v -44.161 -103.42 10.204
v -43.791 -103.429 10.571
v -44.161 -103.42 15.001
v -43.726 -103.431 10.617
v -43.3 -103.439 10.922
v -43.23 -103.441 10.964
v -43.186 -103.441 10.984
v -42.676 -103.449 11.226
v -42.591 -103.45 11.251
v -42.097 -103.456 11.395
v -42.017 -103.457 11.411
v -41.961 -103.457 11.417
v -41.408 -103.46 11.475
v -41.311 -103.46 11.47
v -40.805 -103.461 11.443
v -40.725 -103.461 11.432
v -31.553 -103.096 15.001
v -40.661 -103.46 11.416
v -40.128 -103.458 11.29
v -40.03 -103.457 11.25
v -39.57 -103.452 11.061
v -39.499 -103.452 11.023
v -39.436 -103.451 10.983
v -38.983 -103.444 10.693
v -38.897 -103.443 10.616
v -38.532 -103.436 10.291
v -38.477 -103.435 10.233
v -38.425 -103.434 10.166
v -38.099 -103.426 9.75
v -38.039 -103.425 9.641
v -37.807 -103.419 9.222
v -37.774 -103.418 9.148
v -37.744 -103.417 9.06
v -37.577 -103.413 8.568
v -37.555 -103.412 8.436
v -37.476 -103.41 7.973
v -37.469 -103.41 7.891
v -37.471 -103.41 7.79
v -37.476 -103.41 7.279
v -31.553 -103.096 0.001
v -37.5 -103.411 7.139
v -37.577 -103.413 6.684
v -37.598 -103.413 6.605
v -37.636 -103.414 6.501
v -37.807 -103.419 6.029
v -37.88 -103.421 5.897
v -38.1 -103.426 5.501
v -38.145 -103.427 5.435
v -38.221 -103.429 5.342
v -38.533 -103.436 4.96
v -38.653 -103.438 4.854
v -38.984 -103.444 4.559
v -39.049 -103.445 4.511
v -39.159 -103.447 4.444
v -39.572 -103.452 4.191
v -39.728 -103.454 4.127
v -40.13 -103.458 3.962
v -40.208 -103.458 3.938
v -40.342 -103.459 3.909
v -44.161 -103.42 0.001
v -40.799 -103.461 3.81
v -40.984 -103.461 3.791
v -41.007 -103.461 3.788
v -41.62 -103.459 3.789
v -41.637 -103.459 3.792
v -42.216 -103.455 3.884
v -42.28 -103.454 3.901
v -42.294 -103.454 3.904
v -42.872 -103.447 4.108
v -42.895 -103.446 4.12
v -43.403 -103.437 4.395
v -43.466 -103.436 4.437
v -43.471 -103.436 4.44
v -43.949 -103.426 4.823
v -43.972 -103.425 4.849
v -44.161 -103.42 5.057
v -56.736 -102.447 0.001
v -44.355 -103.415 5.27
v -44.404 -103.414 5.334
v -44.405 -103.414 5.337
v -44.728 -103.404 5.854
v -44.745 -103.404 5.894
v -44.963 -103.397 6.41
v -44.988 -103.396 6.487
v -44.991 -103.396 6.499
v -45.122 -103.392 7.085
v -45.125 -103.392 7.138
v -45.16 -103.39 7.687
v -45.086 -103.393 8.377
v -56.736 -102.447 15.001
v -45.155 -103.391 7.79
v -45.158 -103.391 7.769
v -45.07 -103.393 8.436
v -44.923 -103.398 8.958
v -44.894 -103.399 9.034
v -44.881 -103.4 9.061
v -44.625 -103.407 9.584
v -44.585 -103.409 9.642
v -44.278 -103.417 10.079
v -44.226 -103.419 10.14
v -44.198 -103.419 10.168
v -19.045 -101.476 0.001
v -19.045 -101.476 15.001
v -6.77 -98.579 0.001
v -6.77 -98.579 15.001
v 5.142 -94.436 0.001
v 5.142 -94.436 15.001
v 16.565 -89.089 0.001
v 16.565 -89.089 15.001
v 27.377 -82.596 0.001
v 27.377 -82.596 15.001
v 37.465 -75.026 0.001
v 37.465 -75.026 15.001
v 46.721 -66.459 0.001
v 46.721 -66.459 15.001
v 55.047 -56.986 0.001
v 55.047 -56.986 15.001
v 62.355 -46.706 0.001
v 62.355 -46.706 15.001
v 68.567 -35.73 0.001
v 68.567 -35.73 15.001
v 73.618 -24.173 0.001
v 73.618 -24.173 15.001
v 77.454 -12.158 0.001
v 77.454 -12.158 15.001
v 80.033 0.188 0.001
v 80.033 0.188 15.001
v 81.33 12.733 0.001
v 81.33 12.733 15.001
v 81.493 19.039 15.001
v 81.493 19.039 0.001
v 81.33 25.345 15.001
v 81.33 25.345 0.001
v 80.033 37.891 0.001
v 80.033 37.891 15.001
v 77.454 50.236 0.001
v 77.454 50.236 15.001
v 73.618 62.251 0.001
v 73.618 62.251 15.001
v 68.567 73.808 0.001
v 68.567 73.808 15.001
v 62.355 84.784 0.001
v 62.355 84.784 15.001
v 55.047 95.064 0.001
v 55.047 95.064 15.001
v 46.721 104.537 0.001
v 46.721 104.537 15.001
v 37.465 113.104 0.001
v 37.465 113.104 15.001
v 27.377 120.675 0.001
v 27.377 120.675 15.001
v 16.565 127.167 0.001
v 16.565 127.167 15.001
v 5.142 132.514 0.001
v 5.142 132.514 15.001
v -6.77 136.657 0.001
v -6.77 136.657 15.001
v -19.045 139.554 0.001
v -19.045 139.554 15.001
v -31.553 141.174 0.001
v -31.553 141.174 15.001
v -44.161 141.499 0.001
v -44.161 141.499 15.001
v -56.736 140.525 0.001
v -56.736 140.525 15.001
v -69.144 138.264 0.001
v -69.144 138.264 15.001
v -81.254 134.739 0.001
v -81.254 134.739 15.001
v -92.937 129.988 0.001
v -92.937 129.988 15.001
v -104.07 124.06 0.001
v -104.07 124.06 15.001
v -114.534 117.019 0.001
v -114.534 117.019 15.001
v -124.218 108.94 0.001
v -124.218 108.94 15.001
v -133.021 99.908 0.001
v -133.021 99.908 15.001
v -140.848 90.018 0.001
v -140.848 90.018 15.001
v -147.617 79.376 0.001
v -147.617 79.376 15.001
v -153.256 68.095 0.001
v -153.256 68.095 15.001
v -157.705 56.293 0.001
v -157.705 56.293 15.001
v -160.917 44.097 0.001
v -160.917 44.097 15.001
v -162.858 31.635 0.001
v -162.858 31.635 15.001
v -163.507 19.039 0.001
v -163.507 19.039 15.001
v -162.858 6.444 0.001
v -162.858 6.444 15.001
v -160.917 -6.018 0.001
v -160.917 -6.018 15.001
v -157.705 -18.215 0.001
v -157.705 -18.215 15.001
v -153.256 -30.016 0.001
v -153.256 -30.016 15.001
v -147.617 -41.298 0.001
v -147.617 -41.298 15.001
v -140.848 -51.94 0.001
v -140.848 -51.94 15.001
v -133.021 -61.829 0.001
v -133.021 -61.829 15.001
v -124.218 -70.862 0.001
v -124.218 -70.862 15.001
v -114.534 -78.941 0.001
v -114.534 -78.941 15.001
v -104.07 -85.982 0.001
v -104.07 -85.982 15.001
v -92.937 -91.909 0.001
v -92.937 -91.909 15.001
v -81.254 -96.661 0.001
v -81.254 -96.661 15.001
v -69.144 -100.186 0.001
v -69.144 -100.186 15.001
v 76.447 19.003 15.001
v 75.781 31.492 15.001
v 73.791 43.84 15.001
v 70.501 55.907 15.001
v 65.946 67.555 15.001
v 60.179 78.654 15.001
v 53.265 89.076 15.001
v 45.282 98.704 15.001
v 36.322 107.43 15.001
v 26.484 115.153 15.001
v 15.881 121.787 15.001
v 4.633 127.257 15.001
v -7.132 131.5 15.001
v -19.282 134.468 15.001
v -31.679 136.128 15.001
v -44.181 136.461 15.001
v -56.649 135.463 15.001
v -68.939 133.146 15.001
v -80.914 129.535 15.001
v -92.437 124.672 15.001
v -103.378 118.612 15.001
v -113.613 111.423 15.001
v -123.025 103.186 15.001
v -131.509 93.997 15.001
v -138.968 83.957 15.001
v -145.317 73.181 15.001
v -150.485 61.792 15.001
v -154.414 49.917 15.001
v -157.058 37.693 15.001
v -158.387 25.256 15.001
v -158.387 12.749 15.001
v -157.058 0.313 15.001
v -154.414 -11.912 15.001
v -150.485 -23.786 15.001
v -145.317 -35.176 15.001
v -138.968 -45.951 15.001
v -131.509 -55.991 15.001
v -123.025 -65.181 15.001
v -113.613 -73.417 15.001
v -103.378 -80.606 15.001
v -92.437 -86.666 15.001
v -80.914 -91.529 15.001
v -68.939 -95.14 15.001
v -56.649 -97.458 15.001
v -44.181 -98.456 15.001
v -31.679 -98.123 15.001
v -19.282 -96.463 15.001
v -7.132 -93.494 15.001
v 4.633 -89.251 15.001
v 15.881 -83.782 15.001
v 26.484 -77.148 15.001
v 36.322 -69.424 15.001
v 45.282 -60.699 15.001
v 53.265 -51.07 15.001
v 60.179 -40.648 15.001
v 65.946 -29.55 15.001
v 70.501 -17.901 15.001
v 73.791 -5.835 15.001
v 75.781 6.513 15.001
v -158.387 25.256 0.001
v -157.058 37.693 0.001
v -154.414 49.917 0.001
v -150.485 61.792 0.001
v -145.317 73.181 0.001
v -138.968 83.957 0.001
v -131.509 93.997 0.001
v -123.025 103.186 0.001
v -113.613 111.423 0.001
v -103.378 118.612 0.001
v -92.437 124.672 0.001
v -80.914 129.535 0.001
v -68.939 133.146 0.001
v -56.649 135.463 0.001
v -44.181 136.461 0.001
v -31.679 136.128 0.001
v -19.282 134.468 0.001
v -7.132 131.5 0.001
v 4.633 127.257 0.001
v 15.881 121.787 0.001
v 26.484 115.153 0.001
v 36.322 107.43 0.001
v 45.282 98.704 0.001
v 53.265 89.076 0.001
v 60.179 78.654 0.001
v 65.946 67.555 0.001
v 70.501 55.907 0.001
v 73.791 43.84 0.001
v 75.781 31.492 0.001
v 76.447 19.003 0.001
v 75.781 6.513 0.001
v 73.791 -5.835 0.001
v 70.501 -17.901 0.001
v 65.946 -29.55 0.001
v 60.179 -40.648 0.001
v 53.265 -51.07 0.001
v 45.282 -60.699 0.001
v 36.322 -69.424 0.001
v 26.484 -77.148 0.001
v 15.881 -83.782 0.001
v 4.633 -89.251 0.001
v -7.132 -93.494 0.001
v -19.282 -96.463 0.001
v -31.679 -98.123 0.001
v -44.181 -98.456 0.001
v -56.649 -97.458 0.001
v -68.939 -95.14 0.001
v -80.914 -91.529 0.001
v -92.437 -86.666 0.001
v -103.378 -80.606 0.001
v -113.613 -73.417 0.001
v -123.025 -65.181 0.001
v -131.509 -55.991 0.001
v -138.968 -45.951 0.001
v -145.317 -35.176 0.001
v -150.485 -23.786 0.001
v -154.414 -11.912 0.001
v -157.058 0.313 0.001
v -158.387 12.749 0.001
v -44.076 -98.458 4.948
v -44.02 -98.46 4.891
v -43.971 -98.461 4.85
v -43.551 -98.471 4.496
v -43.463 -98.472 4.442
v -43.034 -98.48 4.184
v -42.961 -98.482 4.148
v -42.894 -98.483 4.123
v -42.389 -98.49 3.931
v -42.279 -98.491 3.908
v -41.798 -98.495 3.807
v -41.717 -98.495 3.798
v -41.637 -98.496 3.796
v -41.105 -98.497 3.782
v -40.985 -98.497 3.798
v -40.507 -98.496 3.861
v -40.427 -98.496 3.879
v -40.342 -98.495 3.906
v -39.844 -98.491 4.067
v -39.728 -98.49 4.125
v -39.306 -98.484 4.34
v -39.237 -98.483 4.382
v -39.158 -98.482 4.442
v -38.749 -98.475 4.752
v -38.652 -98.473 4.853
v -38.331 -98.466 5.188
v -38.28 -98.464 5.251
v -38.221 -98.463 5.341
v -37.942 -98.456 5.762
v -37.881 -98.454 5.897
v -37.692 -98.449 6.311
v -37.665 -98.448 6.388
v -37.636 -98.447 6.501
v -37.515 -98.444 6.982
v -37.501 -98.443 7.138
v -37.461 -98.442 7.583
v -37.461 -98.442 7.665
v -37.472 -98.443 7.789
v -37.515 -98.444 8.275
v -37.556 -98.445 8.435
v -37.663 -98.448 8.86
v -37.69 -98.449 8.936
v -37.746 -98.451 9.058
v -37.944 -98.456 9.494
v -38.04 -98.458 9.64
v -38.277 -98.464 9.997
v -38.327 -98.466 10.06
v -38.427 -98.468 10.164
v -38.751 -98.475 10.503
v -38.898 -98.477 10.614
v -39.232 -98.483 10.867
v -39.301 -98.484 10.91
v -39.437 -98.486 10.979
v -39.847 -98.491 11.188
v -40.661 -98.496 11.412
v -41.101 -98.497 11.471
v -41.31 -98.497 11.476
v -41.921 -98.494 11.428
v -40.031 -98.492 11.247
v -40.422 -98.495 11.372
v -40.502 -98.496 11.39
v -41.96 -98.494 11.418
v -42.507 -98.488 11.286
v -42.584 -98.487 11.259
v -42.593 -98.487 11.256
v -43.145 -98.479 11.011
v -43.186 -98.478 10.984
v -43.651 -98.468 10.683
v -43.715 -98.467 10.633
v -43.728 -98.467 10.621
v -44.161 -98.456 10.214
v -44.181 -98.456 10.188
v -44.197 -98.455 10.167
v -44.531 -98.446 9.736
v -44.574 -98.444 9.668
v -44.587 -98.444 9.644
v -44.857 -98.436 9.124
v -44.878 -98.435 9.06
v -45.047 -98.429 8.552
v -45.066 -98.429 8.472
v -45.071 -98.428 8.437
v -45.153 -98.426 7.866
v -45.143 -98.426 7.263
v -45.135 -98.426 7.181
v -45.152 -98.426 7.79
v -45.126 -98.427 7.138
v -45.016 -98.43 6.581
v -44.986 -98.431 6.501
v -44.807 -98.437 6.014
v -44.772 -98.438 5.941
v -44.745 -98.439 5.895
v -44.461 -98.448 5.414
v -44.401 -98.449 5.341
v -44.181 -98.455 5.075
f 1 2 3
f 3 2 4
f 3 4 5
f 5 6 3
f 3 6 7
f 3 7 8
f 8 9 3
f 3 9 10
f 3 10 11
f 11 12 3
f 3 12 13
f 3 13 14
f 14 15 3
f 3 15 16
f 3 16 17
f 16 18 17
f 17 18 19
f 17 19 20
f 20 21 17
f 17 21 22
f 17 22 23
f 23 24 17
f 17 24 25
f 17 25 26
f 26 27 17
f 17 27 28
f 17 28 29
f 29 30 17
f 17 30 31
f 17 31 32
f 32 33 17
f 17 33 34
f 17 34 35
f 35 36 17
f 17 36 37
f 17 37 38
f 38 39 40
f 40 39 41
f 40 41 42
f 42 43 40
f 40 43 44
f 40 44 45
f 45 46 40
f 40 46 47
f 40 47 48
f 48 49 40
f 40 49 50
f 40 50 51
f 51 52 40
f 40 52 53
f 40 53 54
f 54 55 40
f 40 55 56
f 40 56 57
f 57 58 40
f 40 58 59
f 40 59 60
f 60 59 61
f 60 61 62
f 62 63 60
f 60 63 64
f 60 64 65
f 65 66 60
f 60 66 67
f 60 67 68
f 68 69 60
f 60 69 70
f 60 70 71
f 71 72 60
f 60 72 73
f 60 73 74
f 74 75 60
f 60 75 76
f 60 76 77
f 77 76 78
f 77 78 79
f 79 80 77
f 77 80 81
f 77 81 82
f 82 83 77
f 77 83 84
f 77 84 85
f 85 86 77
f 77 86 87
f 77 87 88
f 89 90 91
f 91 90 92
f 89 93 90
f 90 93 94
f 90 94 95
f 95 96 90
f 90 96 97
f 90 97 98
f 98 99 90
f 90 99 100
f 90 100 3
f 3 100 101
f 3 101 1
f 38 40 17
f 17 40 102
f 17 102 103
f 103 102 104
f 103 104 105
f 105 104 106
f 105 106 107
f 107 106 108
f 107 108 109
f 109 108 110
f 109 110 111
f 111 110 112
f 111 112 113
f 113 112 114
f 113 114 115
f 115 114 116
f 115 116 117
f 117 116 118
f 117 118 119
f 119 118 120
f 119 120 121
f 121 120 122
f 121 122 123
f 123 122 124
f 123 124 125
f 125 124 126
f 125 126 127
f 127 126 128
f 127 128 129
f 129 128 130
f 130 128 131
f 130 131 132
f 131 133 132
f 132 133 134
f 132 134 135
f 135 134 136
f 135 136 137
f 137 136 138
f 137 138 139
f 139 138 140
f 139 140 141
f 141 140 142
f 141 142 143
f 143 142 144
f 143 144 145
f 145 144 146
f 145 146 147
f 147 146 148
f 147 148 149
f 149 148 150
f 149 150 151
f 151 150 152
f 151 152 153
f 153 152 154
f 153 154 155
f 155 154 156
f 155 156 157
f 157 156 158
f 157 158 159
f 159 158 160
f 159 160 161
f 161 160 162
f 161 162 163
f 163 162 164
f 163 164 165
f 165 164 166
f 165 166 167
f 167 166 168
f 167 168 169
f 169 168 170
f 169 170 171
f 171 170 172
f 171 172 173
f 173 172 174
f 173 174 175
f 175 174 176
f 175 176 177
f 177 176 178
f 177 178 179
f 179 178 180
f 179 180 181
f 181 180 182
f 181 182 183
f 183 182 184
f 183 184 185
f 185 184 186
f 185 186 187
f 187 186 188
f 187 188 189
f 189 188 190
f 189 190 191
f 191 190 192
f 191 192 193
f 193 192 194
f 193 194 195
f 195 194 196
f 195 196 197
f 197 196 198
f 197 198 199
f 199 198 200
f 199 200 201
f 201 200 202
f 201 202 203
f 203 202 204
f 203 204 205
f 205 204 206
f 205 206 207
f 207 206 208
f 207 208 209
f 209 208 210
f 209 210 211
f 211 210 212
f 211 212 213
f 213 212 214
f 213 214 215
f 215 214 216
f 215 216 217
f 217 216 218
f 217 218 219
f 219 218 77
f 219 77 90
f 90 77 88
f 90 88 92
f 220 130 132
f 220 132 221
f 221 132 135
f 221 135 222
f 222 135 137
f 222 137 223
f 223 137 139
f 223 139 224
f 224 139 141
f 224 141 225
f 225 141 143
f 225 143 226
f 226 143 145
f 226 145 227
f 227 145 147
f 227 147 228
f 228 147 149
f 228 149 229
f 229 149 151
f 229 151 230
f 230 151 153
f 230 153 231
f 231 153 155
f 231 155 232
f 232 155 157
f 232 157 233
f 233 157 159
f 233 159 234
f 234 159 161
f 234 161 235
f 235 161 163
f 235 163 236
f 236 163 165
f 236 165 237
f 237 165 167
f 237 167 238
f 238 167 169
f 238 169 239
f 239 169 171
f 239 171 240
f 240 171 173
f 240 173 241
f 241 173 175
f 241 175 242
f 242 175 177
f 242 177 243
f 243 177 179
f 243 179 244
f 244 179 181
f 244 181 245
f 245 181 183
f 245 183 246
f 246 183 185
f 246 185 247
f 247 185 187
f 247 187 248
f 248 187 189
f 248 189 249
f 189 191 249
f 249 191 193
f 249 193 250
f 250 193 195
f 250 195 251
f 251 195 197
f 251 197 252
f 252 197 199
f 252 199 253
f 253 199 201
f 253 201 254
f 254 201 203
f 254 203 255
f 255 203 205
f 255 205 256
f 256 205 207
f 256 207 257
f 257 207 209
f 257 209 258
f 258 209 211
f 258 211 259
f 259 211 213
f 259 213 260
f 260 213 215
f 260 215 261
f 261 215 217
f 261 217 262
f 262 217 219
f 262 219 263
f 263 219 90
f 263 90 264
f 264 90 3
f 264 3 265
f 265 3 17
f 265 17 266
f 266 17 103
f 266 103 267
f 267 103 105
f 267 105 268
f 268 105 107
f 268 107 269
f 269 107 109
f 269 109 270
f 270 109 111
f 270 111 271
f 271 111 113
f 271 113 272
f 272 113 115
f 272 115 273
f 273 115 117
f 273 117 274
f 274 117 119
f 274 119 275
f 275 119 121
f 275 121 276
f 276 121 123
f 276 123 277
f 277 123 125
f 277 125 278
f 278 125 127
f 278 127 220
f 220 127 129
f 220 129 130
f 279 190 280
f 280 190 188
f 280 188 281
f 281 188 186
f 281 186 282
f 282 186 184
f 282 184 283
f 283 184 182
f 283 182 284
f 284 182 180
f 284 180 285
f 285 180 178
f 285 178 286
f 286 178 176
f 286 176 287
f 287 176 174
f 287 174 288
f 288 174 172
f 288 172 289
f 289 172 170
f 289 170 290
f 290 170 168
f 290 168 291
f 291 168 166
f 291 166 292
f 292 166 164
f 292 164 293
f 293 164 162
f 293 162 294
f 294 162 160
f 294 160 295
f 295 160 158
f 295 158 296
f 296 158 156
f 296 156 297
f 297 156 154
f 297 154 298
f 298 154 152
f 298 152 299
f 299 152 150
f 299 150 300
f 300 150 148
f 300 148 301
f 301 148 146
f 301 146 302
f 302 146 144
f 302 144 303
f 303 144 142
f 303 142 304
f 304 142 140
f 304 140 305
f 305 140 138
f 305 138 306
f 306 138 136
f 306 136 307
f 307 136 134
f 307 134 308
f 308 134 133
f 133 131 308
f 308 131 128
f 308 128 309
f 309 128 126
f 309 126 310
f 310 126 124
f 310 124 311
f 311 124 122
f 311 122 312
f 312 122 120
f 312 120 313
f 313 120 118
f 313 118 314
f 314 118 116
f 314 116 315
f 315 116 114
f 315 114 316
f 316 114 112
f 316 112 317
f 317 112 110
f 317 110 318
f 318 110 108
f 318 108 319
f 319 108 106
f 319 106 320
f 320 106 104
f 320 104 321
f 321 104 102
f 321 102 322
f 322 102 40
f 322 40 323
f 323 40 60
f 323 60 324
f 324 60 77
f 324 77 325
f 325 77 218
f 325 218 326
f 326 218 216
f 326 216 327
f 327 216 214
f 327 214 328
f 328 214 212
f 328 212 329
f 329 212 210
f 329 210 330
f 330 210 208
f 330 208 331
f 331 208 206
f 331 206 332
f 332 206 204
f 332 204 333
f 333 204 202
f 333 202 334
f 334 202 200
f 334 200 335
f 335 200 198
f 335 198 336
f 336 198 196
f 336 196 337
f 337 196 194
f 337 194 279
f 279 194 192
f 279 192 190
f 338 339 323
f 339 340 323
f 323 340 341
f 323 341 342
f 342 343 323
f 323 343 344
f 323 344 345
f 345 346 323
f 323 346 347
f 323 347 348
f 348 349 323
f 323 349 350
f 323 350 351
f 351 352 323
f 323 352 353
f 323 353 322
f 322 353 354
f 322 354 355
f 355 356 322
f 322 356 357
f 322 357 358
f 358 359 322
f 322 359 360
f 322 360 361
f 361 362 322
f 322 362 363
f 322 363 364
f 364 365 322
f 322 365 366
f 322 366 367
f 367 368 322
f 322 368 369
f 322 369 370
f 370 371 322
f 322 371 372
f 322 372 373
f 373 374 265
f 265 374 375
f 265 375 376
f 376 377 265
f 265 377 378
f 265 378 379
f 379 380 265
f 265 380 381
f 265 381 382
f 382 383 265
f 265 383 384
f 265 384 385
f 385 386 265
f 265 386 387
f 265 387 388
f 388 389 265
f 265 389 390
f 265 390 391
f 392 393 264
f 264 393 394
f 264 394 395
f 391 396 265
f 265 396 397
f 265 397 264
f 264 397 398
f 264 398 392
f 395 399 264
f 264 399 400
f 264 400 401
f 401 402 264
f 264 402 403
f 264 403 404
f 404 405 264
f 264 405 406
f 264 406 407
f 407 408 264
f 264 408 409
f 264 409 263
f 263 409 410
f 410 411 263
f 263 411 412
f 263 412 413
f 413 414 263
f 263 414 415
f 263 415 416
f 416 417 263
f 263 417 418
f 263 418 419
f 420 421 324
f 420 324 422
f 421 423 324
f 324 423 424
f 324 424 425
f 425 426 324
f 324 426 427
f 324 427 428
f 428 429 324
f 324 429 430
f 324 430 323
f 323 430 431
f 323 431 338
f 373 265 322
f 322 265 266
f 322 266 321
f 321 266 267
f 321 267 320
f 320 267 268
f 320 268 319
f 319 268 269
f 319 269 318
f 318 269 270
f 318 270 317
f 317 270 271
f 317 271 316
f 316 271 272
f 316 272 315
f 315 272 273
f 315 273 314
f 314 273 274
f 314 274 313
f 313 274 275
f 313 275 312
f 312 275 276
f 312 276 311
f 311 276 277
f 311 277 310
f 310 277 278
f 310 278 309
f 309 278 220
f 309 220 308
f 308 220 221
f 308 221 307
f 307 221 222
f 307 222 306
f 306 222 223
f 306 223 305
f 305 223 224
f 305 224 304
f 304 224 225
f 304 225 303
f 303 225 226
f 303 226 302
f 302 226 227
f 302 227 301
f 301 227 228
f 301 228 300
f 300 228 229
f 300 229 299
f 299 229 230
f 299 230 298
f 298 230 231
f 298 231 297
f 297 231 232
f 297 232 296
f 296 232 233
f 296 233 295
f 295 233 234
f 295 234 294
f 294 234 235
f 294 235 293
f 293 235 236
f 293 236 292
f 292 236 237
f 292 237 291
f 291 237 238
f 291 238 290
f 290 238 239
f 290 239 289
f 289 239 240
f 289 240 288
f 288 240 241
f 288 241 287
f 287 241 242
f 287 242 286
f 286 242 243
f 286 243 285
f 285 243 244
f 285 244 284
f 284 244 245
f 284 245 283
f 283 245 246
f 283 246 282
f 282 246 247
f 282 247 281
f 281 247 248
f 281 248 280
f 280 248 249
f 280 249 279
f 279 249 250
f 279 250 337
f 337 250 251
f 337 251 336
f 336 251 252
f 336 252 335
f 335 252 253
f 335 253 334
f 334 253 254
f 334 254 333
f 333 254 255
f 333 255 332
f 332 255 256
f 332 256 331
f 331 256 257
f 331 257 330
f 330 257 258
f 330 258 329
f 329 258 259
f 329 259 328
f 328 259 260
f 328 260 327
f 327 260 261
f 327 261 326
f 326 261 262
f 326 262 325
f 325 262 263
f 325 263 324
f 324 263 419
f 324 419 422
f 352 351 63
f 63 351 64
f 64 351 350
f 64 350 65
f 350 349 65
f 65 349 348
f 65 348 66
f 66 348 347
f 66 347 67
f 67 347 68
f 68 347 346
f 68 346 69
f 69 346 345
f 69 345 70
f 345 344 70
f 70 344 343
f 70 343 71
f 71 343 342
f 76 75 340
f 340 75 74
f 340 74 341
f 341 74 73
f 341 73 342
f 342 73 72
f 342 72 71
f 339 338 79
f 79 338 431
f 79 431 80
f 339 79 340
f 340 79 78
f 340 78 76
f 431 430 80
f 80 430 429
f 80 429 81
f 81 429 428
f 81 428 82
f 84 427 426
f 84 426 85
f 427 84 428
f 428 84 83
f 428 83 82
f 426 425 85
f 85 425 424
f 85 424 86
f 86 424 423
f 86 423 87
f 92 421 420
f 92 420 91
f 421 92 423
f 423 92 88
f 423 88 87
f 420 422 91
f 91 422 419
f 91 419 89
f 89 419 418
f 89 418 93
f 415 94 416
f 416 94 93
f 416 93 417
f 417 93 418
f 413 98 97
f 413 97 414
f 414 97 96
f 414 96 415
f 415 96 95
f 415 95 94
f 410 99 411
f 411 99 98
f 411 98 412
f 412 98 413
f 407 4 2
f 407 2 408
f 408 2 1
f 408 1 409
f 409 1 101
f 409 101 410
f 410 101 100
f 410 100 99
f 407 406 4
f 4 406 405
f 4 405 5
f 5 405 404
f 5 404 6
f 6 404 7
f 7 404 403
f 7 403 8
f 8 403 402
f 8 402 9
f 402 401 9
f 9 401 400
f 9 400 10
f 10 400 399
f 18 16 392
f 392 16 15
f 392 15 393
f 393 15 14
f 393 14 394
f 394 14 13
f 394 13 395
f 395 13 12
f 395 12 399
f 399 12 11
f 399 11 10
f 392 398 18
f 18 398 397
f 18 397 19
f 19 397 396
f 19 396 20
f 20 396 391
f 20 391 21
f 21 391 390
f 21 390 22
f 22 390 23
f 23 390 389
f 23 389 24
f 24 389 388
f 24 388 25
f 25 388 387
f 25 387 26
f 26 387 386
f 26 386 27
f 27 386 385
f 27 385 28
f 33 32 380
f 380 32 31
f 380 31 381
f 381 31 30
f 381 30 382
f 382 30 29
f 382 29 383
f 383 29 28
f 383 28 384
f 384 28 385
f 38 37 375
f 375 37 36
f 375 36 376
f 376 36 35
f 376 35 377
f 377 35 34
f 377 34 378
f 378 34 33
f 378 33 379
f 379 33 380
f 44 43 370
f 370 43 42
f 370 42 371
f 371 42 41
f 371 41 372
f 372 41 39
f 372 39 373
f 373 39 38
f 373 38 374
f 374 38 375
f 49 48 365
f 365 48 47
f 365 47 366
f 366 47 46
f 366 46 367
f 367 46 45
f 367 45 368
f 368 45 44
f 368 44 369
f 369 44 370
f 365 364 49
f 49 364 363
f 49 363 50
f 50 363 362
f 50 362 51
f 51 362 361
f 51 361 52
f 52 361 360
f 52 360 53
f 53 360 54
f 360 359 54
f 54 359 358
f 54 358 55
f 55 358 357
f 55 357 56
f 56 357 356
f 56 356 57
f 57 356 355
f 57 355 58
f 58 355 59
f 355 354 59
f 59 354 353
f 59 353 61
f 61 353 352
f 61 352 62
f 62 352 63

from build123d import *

# Parameters (mm, degrees)
ESQUISSE1_R             = 122.5
BOSS_EXTRU_1_DEPTH      = 15
ESQUISSE3D1_R           = 117.5
ENL_V_MAT_EXTRU_1_DEPTH = 21
ESQUISSE2_R             = 3.85
ENL_V_MAT_EXTRU_2_DEPTH = 217.77873659


with BuildPart() as part:
    # Esquisse1 → Boss.-Extru.1 (new body)
    with BuildSketch(Plane.XY):
        with Locations((-41.00744319, 19.039170053)):
            Circle(ESQUISSE1_R)
    extrude(amount=BOSS_EXTRU_1_DEPTH)

    # Esquisse3D1 → Enlèv. mat.-Extru.1 (cut)
    with BuildSketch(Plane(origin=(-41.053541595, 19.002849863, 0), x_dir=(1, 0, 0), z_dir=(0, 0, 1))):
        Circle(ESQUISSE3D1_R)
    extrude(amount=ENL_V_MAT_EXTRU_1_DEPTH, mode=Mode.SUBTRACT)

    # Esquisse2 → Enlèv. mat.-Extru.2 (cut, through all)
    with BuildSketch(Plane(origin=(0, 0, 0), x_dir=(1, 0, 0), z_dir=(0, 1, 0))):
        with Locations((-41.310397507, -7.625301321)):
            Circle(ESQUISSE2_R)
    extrude(amount=-ENL_V_MAT_EXTRU_2_DEPTH, mode=Mode.SUBTRACT)


solid = part.part
